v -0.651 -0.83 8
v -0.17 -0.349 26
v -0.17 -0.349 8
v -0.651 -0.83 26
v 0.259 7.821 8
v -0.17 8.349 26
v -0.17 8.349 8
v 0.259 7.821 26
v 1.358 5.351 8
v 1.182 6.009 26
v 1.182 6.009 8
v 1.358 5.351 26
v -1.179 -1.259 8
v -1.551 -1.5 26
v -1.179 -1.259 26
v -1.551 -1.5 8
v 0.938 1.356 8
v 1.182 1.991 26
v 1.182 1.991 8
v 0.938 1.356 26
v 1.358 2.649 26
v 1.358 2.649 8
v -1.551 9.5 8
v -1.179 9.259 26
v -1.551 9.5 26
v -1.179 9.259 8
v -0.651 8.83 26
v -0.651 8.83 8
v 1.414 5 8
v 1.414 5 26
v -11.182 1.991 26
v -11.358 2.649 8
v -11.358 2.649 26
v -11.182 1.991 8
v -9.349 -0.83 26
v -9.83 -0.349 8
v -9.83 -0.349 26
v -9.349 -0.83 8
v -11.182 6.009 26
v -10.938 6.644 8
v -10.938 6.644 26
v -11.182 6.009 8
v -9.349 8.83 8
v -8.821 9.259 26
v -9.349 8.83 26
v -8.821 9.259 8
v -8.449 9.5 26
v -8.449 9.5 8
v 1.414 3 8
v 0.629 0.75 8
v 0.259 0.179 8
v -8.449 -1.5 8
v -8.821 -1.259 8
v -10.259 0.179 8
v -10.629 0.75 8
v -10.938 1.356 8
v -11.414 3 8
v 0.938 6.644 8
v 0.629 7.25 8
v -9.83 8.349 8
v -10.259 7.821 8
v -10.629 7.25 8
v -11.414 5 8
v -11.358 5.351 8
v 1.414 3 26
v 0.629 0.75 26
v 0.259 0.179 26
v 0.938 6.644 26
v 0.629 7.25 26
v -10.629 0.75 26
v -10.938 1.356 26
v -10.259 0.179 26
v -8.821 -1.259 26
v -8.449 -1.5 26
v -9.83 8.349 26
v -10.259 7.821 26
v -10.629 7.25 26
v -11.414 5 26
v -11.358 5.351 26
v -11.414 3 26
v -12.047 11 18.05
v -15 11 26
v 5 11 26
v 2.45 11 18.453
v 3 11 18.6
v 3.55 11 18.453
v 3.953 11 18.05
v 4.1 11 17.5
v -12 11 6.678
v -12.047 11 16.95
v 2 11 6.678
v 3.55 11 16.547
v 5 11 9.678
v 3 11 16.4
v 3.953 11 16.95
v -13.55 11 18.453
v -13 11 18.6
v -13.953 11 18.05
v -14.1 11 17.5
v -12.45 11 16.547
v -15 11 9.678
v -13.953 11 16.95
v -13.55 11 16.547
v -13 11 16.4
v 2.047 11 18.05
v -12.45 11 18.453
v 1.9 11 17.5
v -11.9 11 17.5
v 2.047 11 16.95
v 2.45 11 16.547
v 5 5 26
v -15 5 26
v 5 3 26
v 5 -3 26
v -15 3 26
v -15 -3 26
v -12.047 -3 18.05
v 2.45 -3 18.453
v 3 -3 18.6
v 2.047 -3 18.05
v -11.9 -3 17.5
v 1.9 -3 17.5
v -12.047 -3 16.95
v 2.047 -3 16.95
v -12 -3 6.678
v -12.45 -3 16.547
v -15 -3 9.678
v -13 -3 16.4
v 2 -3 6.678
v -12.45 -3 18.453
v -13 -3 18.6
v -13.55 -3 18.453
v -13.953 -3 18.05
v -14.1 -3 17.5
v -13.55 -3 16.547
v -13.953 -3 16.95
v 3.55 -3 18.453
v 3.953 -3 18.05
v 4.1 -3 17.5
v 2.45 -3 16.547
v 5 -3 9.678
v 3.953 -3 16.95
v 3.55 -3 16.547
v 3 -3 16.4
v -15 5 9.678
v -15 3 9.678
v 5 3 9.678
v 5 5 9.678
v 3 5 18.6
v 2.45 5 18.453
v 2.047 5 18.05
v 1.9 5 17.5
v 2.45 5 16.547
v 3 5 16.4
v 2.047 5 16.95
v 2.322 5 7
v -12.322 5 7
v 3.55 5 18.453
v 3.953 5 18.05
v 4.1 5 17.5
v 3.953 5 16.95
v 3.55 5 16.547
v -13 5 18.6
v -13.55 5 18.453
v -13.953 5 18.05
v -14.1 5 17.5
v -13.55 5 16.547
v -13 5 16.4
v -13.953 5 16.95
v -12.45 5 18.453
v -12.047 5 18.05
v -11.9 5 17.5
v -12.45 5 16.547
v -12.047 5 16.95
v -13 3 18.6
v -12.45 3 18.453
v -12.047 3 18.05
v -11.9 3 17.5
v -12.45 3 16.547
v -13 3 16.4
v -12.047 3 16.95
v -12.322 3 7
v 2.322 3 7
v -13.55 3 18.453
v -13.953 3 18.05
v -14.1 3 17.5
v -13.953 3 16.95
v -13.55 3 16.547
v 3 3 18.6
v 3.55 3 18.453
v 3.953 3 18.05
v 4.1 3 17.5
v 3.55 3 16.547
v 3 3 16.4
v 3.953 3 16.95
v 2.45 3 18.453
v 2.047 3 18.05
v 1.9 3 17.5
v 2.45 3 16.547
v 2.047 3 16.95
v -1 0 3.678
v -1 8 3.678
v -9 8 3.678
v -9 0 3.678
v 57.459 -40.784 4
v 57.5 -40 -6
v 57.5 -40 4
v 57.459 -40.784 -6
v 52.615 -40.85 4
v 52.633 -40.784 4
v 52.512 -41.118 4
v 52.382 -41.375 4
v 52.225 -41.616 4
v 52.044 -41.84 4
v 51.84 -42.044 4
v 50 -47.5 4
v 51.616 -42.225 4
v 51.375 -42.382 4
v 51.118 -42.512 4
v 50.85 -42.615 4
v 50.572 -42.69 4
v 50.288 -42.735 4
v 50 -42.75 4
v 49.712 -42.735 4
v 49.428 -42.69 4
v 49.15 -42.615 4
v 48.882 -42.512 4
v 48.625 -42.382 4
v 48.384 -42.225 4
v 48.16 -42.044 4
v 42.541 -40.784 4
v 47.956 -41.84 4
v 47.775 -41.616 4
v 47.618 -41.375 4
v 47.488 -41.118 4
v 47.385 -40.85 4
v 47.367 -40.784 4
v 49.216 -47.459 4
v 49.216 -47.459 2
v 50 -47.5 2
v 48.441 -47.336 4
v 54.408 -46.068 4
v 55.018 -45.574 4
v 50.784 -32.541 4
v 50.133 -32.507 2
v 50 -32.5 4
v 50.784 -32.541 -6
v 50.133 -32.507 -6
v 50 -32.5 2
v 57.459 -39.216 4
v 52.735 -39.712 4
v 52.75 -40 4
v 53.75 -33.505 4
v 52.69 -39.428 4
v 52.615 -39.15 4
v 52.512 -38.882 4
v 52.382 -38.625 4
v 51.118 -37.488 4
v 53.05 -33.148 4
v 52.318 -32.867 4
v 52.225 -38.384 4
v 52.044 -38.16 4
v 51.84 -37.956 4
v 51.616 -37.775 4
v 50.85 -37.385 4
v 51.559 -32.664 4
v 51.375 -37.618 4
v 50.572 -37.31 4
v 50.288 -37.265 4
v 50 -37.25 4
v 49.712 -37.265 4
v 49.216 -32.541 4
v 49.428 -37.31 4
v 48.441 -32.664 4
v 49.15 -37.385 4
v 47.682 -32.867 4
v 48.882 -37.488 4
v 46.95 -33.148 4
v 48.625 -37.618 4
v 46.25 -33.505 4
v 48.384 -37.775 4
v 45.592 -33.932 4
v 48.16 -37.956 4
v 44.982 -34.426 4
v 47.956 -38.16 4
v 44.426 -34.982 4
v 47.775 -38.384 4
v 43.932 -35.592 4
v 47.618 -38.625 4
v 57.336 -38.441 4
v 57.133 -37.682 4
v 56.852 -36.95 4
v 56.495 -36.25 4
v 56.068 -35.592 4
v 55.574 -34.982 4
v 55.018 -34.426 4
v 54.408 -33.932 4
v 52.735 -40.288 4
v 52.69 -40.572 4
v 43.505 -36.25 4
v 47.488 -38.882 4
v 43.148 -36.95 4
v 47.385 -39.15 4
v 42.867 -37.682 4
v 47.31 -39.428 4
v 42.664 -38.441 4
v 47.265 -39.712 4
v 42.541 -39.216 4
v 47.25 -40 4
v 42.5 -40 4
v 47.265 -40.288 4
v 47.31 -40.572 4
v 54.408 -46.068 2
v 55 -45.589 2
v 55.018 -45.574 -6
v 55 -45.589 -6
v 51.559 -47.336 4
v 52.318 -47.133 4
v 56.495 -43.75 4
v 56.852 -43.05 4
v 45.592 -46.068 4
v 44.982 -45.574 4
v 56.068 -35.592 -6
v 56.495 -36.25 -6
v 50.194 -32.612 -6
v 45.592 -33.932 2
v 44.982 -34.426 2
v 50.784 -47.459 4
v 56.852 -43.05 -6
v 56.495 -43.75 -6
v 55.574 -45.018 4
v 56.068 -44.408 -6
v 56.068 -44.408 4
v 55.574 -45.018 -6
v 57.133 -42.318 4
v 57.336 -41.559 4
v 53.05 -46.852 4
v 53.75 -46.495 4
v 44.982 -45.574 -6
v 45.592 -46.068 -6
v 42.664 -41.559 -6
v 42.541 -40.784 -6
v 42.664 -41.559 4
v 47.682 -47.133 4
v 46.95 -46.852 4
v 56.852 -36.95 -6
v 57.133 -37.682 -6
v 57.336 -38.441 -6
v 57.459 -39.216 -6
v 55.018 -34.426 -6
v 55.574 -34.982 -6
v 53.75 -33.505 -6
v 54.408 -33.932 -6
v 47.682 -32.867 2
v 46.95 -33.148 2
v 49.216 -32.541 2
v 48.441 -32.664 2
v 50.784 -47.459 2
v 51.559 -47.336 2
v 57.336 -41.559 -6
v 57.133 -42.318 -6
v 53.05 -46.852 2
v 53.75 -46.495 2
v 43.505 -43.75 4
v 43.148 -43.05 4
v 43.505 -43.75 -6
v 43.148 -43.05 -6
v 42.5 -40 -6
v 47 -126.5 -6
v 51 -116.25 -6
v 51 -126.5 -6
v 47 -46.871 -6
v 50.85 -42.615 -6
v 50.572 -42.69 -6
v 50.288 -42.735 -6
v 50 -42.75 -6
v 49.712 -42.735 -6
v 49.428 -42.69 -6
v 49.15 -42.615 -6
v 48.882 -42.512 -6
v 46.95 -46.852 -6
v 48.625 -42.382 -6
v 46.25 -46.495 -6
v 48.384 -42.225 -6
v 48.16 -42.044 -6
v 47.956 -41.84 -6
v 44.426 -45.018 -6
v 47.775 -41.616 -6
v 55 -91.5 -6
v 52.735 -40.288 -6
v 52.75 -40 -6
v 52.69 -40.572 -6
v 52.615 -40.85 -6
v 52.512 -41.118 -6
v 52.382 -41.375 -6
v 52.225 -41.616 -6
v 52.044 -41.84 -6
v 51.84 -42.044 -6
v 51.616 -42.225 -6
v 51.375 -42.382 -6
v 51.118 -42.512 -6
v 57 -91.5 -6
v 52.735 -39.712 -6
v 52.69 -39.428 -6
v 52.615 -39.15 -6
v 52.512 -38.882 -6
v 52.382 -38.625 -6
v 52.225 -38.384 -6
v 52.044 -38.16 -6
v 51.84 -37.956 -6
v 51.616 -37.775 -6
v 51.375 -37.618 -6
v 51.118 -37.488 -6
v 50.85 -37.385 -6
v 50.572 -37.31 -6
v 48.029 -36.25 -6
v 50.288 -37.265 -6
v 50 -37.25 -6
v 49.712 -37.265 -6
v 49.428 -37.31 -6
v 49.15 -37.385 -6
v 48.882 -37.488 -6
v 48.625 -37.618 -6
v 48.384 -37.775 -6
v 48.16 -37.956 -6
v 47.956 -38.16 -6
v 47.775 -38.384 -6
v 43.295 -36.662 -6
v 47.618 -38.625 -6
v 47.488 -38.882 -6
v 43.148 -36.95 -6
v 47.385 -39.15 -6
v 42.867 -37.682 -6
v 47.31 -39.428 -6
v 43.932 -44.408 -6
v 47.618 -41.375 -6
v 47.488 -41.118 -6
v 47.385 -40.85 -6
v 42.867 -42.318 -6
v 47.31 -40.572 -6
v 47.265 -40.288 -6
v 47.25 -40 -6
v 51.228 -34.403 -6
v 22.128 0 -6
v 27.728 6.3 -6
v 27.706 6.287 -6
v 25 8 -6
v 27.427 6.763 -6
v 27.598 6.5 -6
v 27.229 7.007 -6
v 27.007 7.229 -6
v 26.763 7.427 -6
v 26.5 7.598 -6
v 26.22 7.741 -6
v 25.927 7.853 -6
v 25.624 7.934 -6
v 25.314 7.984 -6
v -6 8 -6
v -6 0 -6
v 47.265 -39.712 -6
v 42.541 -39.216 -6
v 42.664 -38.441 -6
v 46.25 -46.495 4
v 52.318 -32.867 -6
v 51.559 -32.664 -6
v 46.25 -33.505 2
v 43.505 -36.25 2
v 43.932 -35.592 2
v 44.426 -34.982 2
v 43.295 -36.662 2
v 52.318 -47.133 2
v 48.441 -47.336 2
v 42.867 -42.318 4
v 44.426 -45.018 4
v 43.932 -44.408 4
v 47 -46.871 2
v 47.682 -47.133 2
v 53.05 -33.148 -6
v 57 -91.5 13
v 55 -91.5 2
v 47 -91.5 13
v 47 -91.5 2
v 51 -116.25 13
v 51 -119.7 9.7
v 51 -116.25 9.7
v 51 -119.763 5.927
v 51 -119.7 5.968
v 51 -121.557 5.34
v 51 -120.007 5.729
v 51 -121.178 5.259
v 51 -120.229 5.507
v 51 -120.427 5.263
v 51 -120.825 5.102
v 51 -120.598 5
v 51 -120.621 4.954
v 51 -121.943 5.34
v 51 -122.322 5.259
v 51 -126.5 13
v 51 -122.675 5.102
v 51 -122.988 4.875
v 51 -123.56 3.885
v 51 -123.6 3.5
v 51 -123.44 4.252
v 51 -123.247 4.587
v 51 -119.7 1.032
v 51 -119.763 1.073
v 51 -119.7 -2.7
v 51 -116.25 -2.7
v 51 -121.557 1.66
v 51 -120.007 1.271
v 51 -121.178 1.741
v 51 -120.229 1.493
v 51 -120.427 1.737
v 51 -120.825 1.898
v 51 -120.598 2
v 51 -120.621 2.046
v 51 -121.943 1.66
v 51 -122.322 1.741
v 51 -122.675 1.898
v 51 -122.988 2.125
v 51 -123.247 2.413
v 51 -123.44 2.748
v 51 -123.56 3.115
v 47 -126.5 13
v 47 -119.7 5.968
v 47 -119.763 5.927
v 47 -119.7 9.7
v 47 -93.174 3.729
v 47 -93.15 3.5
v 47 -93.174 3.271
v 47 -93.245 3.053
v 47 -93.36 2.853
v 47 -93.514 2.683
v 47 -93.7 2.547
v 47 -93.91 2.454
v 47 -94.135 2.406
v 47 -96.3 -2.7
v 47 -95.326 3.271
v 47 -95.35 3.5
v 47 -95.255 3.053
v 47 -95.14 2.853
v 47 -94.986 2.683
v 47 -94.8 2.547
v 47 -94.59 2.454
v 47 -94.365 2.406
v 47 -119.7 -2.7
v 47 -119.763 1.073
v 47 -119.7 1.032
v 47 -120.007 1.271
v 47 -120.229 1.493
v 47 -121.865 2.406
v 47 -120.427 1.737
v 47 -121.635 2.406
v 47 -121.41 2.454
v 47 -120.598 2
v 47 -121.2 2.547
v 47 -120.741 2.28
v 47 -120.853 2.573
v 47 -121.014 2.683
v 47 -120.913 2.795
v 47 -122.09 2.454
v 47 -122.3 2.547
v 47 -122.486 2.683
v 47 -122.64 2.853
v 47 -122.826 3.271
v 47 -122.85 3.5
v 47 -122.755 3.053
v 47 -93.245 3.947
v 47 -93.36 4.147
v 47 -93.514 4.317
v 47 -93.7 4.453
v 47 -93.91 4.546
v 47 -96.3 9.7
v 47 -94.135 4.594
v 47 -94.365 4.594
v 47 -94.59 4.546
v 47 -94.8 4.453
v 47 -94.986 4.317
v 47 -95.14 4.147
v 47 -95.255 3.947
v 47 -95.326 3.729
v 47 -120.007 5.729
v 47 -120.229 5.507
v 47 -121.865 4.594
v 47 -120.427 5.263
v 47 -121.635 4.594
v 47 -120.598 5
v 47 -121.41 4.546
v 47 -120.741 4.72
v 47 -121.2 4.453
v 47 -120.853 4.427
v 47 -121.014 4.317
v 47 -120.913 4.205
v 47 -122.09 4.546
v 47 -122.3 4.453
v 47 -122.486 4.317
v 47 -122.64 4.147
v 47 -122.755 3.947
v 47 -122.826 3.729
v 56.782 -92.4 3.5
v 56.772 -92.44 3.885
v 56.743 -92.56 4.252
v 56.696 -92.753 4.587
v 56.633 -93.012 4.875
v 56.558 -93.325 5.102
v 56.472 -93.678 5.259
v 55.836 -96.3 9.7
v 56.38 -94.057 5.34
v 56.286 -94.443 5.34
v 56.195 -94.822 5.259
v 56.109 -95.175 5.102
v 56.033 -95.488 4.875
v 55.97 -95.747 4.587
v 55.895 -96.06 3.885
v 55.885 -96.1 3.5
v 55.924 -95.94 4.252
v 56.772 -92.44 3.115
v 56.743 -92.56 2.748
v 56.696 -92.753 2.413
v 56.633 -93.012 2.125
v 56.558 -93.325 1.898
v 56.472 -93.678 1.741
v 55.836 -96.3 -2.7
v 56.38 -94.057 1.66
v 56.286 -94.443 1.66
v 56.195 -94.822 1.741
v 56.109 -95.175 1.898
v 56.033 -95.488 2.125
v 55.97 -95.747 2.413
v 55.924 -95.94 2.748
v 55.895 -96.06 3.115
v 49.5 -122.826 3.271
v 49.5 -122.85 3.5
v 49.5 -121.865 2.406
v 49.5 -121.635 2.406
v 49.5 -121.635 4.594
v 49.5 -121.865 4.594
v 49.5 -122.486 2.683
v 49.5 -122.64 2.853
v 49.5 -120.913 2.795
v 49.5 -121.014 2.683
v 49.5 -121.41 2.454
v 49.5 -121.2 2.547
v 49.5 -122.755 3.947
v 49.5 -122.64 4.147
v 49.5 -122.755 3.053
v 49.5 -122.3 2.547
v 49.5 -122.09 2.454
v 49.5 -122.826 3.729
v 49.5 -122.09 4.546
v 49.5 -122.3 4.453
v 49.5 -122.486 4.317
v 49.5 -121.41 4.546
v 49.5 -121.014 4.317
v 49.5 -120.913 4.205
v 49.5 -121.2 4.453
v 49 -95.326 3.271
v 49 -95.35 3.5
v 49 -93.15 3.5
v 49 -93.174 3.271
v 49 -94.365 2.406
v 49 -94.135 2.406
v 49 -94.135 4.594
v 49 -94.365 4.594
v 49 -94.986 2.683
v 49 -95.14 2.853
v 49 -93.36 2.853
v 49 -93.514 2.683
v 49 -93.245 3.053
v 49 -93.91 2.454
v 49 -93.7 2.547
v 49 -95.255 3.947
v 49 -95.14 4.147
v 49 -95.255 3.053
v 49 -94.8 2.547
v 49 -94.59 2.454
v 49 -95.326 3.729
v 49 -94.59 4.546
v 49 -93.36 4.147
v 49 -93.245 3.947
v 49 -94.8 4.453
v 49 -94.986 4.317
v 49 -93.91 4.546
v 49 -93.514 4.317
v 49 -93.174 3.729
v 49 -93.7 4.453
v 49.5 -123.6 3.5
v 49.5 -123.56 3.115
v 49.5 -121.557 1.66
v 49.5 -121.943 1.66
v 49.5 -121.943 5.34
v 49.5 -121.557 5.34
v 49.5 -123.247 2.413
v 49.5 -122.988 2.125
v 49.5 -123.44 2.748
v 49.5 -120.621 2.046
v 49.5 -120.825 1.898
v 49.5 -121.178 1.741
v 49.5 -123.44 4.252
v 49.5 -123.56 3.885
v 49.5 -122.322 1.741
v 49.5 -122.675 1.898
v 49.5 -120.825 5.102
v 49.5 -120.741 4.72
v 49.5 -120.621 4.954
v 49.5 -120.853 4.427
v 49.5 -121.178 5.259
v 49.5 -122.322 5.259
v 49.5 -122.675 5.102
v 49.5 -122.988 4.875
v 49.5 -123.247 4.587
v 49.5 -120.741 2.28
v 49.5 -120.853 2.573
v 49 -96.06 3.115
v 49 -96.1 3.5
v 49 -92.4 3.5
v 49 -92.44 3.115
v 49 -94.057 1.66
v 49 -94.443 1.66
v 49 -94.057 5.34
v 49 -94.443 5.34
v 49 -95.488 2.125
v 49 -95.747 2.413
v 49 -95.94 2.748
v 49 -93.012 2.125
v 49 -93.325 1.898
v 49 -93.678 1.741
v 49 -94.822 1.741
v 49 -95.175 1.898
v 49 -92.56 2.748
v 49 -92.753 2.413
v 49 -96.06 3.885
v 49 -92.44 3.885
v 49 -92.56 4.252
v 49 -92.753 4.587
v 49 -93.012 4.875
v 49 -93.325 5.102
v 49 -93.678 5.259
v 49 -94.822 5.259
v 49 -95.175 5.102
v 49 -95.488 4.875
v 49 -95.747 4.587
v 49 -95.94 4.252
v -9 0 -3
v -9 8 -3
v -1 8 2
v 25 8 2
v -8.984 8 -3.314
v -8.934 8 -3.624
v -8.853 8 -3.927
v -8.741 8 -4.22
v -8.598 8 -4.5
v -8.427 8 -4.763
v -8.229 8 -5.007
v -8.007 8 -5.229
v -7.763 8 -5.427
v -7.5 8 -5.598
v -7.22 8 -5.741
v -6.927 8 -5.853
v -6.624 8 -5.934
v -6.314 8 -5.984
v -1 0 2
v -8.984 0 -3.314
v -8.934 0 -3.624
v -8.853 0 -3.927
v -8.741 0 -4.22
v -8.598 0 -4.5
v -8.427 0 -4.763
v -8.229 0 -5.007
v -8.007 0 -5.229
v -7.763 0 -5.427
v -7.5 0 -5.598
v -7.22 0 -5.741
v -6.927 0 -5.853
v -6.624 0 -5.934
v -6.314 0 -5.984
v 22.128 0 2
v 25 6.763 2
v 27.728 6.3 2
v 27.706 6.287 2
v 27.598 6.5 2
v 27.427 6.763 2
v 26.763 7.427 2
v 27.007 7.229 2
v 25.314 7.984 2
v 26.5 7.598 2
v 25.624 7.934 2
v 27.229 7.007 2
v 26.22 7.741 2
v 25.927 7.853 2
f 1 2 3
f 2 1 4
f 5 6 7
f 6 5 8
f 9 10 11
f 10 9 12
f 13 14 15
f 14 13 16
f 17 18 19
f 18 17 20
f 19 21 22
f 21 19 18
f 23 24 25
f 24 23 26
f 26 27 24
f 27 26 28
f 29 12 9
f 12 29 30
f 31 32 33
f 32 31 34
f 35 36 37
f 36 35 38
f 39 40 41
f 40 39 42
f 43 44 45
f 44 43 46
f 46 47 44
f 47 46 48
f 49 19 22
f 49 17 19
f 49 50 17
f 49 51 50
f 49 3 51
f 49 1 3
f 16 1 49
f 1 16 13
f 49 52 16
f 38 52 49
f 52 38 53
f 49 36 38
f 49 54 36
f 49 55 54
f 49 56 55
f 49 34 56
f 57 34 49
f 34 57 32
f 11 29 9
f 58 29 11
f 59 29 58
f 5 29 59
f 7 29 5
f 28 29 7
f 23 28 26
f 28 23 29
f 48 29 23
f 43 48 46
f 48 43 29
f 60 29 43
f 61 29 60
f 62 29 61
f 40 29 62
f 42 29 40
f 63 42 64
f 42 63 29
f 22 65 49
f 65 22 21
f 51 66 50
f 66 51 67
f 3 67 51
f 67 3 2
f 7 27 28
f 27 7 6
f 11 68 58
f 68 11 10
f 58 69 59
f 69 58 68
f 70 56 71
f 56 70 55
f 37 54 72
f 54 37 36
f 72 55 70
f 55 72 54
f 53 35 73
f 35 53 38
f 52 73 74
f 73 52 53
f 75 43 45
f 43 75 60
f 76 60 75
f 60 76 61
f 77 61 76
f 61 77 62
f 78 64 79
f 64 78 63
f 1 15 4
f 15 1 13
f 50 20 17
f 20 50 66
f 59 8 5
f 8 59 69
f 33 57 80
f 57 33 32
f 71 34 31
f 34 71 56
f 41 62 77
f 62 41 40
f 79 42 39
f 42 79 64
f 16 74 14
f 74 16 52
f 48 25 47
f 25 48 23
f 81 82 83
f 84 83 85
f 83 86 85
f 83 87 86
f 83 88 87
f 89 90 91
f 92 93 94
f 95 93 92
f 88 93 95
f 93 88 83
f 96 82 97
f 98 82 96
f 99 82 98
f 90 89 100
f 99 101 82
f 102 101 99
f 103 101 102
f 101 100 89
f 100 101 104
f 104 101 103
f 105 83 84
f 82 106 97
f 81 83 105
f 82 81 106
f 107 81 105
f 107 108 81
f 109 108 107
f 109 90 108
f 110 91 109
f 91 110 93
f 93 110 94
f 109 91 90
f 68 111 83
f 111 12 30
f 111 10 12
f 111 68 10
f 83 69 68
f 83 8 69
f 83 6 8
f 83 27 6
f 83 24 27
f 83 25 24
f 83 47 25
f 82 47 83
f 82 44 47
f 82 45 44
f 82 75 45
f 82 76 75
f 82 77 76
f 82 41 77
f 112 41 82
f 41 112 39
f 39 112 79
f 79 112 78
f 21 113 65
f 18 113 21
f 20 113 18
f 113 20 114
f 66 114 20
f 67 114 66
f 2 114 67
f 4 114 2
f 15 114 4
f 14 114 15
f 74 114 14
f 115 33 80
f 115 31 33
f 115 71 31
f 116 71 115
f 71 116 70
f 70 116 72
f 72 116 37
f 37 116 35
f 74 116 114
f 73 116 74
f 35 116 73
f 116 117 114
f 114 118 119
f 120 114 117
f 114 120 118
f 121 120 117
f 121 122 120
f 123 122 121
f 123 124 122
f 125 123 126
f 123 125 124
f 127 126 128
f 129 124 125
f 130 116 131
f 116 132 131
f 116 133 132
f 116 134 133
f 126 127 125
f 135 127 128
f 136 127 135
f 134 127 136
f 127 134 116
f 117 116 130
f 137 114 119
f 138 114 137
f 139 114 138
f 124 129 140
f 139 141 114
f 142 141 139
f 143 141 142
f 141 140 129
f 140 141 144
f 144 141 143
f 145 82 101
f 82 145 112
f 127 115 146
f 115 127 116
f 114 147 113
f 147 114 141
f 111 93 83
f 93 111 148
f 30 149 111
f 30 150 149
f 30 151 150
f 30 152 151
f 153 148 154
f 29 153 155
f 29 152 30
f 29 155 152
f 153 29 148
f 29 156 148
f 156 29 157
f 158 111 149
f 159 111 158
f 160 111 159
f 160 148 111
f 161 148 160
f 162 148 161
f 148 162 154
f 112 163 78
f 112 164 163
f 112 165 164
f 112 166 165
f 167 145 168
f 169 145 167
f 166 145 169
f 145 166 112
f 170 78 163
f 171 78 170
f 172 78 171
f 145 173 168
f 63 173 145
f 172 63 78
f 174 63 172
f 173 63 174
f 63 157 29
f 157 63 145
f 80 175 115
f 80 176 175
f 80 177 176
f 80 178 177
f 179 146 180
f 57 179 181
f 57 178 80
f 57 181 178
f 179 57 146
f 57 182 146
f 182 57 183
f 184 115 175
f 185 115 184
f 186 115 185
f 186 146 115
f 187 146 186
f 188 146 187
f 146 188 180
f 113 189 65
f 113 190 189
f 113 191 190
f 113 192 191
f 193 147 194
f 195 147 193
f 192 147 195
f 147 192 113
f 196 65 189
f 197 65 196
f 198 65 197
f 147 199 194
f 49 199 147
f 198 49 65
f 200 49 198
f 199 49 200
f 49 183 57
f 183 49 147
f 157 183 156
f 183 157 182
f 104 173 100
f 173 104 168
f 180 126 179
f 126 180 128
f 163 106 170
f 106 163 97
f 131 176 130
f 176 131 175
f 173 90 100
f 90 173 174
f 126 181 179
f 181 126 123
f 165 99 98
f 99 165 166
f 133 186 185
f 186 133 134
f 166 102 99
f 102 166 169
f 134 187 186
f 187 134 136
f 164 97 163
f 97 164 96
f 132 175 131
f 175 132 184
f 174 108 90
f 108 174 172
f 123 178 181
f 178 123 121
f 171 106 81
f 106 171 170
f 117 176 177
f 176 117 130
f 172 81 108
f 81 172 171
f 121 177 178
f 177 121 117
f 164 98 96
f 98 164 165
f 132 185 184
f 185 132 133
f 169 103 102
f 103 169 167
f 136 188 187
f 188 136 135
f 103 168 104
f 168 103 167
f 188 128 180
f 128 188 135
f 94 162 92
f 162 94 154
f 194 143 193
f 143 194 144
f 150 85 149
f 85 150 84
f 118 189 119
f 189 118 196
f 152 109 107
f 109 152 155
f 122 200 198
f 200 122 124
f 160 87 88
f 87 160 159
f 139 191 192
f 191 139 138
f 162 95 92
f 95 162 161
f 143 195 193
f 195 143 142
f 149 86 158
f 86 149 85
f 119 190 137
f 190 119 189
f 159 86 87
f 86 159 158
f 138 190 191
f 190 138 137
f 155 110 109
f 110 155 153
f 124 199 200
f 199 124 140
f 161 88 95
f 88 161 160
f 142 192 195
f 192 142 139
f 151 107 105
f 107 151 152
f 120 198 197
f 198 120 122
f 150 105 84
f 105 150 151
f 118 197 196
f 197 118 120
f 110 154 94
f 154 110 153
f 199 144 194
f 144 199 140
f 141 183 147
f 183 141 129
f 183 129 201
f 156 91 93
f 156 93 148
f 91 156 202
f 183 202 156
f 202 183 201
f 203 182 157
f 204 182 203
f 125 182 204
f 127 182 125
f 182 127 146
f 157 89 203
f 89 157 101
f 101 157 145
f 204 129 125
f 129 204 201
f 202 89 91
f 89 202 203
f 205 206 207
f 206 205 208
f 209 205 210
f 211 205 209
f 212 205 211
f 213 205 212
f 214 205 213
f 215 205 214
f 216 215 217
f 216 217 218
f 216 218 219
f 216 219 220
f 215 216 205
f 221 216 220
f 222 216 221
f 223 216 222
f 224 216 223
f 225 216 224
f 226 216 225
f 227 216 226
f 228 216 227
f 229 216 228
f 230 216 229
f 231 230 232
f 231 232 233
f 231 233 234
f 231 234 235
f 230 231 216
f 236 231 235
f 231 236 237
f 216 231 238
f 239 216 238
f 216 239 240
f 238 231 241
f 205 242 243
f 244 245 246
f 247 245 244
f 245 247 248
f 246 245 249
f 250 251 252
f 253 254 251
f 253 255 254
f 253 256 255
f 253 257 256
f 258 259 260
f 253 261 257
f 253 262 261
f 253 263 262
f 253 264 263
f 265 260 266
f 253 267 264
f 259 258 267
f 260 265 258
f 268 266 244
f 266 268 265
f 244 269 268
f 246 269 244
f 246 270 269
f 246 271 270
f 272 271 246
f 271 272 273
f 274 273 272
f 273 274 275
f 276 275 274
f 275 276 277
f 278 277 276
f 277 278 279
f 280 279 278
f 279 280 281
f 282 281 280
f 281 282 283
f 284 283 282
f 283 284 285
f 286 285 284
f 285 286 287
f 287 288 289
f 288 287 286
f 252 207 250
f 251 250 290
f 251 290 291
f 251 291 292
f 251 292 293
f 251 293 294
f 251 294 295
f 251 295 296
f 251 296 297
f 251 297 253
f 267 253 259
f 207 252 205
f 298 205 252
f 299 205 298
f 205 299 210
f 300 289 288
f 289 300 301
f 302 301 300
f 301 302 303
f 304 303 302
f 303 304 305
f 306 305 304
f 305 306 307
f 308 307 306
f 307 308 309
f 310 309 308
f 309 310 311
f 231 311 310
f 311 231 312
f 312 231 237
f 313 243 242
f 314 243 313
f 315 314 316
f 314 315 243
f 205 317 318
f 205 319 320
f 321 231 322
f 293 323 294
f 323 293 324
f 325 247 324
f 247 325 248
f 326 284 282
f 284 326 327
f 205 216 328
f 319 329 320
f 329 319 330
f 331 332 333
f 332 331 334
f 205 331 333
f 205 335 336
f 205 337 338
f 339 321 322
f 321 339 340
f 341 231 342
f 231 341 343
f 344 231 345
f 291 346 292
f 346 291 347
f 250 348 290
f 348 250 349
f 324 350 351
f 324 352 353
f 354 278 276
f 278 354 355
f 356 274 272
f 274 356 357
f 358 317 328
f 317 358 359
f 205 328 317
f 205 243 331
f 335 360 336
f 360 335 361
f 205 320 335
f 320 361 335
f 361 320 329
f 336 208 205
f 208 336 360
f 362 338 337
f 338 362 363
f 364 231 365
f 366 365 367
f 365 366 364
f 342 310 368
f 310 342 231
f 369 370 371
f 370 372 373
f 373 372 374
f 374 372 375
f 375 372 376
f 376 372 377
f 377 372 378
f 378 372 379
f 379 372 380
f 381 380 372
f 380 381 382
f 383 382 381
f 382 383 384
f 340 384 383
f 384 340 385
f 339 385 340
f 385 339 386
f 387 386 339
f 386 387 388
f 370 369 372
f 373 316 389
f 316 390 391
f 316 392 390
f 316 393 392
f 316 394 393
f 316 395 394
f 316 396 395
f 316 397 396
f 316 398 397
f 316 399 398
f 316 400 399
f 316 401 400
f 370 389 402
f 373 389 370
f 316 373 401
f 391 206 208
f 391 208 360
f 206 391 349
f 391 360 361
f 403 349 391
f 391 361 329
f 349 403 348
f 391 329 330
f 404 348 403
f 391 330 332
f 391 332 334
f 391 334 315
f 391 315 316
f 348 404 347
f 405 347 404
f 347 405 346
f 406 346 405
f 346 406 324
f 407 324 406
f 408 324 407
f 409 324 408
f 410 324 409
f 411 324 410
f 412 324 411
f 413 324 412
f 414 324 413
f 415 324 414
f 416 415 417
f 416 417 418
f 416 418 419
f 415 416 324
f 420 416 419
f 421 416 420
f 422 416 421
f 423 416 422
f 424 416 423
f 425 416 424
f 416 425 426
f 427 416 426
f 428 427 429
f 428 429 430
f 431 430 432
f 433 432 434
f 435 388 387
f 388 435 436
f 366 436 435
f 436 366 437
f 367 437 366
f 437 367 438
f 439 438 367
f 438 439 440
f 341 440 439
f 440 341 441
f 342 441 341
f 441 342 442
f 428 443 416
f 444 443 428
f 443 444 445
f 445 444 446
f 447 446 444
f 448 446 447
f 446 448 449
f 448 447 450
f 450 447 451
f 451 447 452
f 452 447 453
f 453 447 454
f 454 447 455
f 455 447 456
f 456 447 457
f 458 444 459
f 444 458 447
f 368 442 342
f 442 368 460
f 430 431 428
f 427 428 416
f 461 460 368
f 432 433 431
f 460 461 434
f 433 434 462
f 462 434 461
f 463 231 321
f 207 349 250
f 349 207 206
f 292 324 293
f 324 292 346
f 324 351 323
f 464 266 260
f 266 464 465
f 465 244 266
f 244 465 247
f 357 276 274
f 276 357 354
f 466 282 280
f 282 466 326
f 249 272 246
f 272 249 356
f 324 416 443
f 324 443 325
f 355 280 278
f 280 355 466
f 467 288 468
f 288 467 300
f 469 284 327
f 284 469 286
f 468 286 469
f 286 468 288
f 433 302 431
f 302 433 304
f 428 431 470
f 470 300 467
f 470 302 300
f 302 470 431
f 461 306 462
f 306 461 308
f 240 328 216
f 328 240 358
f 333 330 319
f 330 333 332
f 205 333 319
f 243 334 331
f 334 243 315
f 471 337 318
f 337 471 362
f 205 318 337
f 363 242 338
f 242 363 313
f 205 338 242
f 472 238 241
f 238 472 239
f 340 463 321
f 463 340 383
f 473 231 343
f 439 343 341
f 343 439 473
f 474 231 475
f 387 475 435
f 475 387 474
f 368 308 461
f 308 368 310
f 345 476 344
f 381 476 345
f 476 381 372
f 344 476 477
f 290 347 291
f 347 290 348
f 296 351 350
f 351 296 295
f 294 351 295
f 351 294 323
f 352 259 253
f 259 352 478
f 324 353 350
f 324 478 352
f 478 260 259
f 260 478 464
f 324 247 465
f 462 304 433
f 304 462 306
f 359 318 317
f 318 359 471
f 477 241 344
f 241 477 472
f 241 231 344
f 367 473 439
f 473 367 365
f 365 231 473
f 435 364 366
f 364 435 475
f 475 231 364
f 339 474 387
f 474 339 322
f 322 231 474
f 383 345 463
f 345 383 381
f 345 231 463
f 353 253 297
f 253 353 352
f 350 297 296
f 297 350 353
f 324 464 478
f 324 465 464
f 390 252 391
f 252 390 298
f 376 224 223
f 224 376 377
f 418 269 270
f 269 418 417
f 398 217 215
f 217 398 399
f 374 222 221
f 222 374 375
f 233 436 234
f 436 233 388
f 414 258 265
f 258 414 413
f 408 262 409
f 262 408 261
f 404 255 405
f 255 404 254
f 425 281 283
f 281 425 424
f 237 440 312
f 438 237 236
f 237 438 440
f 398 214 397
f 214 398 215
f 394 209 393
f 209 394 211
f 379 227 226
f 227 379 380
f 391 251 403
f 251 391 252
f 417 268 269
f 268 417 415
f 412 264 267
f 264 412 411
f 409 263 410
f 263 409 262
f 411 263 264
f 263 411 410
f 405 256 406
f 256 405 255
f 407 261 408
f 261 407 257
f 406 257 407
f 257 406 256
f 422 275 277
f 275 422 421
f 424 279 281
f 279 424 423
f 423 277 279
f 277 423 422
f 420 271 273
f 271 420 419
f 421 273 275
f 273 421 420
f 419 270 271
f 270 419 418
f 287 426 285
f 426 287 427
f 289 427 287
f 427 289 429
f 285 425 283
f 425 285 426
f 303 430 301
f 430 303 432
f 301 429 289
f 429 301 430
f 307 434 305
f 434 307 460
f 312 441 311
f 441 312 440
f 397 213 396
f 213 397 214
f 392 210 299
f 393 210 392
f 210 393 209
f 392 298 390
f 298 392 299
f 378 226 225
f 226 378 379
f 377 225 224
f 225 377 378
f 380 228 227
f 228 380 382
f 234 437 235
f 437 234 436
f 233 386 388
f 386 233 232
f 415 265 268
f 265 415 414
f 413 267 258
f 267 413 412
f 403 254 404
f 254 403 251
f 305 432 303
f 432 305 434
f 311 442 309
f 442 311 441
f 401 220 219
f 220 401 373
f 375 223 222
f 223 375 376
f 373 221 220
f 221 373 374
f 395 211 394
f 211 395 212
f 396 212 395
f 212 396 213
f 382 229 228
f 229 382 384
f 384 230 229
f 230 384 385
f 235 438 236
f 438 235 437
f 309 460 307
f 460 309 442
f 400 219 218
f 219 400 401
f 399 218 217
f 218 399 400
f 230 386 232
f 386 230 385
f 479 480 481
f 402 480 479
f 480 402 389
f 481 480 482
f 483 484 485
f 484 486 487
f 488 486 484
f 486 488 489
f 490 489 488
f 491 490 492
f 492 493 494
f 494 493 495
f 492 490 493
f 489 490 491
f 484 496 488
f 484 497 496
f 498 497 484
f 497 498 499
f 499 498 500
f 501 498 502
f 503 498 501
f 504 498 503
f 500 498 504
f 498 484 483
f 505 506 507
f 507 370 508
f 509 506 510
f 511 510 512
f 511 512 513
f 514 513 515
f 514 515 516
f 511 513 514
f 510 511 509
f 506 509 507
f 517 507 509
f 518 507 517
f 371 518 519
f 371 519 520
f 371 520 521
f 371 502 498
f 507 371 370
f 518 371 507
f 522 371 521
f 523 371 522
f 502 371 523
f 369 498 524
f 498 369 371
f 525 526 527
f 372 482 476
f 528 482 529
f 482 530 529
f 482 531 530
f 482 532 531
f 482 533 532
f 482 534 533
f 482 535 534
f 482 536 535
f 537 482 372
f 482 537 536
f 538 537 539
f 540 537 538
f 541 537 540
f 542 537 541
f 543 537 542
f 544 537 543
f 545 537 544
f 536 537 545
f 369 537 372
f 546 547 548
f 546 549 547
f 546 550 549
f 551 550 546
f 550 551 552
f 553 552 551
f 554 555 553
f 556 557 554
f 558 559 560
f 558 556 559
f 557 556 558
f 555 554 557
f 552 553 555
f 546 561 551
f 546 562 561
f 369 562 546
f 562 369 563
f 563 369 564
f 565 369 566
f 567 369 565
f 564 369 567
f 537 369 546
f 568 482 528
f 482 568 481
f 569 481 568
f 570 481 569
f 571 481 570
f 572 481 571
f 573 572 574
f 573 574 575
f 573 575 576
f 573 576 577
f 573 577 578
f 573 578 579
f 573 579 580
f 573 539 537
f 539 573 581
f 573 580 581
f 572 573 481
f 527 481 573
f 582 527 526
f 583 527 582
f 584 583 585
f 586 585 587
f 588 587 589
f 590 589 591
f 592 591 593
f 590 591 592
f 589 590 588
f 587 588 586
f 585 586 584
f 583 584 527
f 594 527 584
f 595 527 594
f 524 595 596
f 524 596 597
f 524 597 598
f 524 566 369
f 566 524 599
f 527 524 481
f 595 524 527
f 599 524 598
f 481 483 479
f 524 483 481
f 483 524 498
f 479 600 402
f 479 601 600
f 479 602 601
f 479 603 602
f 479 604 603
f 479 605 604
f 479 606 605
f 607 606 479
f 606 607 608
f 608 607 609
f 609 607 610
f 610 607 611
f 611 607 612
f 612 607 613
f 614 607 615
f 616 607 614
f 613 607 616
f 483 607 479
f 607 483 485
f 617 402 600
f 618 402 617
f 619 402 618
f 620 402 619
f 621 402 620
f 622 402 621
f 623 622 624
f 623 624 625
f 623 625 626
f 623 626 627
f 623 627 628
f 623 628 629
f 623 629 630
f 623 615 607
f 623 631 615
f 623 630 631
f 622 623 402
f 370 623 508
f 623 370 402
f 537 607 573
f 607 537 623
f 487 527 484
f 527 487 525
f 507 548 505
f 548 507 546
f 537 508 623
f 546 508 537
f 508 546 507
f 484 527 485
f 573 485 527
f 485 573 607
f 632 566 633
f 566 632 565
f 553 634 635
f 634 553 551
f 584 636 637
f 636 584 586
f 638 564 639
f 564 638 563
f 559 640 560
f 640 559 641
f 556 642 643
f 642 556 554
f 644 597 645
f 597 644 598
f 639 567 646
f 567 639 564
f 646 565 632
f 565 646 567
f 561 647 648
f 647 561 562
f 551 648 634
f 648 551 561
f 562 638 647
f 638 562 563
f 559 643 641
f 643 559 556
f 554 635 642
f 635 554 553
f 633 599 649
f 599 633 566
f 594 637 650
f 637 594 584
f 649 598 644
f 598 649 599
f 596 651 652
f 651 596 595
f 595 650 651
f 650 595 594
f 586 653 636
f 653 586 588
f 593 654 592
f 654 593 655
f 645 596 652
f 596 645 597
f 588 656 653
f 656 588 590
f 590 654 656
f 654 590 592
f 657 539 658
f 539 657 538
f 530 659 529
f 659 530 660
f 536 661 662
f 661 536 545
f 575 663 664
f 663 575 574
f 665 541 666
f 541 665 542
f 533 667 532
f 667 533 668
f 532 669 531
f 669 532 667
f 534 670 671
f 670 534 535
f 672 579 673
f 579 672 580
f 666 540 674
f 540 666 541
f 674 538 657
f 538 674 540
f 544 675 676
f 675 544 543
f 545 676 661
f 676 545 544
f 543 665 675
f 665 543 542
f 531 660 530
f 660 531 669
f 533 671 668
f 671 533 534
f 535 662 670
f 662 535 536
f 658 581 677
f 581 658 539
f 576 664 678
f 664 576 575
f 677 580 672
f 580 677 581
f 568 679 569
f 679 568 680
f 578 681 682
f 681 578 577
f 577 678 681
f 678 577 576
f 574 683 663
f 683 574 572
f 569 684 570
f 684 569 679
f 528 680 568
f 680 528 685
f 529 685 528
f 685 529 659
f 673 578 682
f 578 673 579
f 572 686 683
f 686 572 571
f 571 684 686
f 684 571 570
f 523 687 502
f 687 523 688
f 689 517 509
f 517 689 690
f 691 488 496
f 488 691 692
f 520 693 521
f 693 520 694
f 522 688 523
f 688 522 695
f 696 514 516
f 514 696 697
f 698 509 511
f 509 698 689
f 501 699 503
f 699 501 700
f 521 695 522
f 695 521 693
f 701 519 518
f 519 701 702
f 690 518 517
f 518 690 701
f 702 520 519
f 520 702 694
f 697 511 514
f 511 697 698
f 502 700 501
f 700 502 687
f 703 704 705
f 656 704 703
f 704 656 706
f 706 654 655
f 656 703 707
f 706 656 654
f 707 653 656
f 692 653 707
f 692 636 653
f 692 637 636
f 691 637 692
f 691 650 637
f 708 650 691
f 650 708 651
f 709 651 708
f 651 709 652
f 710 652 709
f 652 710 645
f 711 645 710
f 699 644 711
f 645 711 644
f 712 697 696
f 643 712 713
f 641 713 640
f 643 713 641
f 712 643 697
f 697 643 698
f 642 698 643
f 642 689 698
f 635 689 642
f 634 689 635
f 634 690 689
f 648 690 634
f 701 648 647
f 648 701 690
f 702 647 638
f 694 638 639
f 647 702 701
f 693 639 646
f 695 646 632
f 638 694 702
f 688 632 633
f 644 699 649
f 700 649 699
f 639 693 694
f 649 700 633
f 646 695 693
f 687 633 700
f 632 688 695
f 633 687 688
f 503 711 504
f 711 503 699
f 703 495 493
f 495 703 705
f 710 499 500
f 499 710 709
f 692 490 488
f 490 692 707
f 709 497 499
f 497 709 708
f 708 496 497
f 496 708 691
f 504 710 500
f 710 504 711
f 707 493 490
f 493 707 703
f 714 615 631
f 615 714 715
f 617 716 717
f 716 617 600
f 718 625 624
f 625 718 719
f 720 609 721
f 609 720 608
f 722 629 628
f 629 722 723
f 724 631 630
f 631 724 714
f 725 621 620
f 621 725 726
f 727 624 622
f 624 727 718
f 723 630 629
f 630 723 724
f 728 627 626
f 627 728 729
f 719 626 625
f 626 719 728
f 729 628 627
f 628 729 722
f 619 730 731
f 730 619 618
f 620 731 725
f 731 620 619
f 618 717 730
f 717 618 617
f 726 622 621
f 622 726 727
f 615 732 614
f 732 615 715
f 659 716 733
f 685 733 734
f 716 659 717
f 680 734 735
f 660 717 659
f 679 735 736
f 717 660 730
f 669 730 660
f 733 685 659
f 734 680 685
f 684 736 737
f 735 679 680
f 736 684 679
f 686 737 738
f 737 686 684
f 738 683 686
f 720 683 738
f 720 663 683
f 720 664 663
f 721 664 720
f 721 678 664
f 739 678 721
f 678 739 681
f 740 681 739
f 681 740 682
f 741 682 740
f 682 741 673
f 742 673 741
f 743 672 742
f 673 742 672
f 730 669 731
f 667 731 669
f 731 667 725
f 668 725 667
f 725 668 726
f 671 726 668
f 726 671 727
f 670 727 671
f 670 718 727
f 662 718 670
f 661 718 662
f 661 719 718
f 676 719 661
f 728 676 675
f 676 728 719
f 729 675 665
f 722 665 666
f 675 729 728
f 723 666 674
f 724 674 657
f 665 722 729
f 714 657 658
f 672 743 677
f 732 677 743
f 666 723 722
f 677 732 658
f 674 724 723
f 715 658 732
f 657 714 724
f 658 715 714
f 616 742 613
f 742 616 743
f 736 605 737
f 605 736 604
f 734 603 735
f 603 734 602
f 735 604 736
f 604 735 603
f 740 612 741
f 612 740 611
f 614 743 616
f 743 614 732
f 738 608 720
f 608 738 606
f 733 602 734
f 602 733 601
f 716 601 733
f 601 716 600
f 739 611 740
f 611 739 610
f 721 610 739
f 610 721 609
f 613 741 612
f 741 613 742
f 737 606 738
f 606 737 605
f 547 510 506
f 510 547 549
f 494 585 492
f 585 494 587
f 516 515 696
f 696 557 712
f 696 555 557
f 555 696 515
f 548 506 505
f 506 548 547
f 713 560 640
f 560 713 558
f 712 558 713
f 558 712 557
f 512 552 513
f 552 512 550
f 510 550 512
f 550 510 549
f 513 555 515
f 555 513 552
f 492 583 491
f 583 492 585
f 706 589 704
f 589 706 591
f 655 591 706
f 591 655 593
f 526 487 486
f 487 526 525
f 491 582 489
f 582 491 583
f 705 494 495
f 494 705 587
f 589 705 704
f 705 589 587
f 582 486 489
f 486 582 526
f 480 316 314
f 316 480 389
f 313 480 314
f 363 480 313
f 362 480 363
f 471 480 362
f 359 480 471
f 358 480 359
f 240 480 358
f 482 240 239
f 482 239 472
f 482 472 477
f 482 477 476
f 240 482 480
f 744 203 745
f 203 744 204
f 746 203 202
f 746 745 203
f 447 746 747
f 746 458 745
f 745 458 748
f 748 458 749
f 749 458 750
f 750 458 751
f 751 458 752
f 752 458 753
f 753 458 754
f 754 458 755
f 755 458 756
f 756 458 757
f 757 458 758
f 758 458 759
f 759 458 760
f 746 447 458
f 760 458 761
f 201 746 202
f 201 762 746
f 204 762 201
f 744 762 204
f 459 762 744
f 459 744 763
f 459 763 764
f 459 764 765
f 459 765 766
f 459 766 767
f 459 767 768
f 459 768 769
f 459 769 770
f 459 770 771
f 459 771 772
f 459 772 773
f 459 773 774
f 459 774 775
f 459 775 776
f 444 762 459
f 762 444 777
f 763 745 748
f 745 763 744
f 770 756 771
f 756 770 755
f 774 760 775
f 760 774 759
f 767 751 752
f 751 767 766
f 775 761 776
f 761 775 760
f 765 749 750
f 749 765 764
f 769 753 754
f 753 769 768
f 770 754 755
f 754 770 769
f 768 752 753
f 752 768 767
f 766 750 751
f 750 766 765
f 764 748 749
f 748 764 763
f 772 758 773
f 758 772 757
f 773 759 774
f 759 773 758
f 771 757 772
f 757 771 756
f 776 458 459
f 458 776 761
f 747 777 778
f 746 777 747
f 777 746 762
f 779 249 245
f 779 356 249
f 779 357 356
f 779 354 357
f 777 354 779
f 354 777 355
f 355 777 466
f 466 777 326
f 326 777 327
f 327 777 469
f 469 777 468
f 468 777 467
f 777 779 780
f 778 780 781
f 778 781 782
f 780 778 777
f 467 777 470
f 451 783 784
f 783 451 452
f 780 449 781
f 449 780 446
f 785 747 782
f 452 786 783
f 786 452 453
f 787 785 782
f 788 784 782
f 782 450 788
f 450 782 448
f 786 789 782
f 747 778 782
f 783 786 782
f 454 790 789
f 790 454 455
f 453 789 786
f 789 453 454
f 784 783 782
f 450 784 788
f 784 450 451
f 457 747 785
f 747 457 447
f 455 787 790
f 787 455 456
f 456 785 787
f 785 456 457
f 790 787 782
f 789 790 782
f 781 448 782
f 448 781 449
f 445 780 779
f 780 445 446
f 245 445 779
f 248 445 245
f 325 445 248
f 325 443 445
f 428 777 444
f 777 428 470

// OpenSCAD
rotate([-90,0,0])
{
rotate([90,90,0])translate([-4,-5,3])clamp();

$fn=60;

translate([-9,-7,0])cube([8,10,8]);
translate([-6,3,0])rotate([0,0,-90])
cylinder(d=6,h=8);
translate([-6,-2,0])cube([31,8,8]);
translate([25,6,5])rotate([90,0,0])
cylinder(d=6,h=8);
translate([20.8,-2,2.3])rotate([0,60,0])
cube([47,8,8]);
difference(){
translate([50,-4,-40])rotate([-90,0,0])
cylinder(d=15,h=10);
translate([50,-5,-40])rotate([-90,0,0])
cylinder(d=5.5,h=12);
}
translate([47,0,-45])
rotate([0,90,0])
{
    translate([0,-2,0])cube([47,8,8]);
    translate([63,-3.5,0])rotate([0,0,0])
    servo_bracket();
}
}

module clamp(){
difference(){
translate([-7,-10,0])
cube([14,20,23]);
difference(){
    translate([0,0,5])cylinder(d=13,h=25,$fn=60);
    translate([6.5,0,12])cube([2,12,25],center=true);
    translate([-6.5,0,12])cube([2,12,25],center=true);
}
translate([-1,-11,4])cube([2,22,25]);
translate([-9,-8,14.5])rotate([0,90,0])
cylinder(d=2.2,h=21,$fn=12);
translate([-9,8,14.5])rotate([0,90,0])
cylinder(d=2.2,h=21,$fn=12);
translate([0,21,0])rotate([45,0,0])cube(size=[25,25,25],center=true);
translate([0,-21,0])rotate([45,0,0])cube(size=[25,25,25],center=true);
translate([21,0,0])rotate([0,0,90])rotate([45,0,0])
cube(size=[25,25,25],center=true);
translate([-21,0,0])rotate([0,0,90])rotate([45,0,0])
cube(size=[25,25,25],center=true);
}
}

module servo_bracket(){
difference(){
union(){
translate([1,0,2])cube([35,19,4],center=true);
translate([0,9.5,2])
rotate([90,0,0])linear_extrude(height=19)
polygon([[-16.5,0],[16.5,0],[-16.5,8]]);
translate([13.75,0,0])cylinder(d=8,h=2,$fn=60);
}
cube([23.4,12.4,50],center=true);
translate([13.75,0,-1])cylinder(d=2.2,h=5,$fn=30);
translate([-13.75,0,-1])cylinder(d=2.2,h=50,$fn=30);
translate([13.75,0,2.5])cylinder(d=3.7,h=5,$fn=30);
translate([-13.75,0,2])cylinder(d=3.7,h=50,$fn=30);
translate([10,0,0])cylinder(d=6,h=12,$fn=60);
}
}
